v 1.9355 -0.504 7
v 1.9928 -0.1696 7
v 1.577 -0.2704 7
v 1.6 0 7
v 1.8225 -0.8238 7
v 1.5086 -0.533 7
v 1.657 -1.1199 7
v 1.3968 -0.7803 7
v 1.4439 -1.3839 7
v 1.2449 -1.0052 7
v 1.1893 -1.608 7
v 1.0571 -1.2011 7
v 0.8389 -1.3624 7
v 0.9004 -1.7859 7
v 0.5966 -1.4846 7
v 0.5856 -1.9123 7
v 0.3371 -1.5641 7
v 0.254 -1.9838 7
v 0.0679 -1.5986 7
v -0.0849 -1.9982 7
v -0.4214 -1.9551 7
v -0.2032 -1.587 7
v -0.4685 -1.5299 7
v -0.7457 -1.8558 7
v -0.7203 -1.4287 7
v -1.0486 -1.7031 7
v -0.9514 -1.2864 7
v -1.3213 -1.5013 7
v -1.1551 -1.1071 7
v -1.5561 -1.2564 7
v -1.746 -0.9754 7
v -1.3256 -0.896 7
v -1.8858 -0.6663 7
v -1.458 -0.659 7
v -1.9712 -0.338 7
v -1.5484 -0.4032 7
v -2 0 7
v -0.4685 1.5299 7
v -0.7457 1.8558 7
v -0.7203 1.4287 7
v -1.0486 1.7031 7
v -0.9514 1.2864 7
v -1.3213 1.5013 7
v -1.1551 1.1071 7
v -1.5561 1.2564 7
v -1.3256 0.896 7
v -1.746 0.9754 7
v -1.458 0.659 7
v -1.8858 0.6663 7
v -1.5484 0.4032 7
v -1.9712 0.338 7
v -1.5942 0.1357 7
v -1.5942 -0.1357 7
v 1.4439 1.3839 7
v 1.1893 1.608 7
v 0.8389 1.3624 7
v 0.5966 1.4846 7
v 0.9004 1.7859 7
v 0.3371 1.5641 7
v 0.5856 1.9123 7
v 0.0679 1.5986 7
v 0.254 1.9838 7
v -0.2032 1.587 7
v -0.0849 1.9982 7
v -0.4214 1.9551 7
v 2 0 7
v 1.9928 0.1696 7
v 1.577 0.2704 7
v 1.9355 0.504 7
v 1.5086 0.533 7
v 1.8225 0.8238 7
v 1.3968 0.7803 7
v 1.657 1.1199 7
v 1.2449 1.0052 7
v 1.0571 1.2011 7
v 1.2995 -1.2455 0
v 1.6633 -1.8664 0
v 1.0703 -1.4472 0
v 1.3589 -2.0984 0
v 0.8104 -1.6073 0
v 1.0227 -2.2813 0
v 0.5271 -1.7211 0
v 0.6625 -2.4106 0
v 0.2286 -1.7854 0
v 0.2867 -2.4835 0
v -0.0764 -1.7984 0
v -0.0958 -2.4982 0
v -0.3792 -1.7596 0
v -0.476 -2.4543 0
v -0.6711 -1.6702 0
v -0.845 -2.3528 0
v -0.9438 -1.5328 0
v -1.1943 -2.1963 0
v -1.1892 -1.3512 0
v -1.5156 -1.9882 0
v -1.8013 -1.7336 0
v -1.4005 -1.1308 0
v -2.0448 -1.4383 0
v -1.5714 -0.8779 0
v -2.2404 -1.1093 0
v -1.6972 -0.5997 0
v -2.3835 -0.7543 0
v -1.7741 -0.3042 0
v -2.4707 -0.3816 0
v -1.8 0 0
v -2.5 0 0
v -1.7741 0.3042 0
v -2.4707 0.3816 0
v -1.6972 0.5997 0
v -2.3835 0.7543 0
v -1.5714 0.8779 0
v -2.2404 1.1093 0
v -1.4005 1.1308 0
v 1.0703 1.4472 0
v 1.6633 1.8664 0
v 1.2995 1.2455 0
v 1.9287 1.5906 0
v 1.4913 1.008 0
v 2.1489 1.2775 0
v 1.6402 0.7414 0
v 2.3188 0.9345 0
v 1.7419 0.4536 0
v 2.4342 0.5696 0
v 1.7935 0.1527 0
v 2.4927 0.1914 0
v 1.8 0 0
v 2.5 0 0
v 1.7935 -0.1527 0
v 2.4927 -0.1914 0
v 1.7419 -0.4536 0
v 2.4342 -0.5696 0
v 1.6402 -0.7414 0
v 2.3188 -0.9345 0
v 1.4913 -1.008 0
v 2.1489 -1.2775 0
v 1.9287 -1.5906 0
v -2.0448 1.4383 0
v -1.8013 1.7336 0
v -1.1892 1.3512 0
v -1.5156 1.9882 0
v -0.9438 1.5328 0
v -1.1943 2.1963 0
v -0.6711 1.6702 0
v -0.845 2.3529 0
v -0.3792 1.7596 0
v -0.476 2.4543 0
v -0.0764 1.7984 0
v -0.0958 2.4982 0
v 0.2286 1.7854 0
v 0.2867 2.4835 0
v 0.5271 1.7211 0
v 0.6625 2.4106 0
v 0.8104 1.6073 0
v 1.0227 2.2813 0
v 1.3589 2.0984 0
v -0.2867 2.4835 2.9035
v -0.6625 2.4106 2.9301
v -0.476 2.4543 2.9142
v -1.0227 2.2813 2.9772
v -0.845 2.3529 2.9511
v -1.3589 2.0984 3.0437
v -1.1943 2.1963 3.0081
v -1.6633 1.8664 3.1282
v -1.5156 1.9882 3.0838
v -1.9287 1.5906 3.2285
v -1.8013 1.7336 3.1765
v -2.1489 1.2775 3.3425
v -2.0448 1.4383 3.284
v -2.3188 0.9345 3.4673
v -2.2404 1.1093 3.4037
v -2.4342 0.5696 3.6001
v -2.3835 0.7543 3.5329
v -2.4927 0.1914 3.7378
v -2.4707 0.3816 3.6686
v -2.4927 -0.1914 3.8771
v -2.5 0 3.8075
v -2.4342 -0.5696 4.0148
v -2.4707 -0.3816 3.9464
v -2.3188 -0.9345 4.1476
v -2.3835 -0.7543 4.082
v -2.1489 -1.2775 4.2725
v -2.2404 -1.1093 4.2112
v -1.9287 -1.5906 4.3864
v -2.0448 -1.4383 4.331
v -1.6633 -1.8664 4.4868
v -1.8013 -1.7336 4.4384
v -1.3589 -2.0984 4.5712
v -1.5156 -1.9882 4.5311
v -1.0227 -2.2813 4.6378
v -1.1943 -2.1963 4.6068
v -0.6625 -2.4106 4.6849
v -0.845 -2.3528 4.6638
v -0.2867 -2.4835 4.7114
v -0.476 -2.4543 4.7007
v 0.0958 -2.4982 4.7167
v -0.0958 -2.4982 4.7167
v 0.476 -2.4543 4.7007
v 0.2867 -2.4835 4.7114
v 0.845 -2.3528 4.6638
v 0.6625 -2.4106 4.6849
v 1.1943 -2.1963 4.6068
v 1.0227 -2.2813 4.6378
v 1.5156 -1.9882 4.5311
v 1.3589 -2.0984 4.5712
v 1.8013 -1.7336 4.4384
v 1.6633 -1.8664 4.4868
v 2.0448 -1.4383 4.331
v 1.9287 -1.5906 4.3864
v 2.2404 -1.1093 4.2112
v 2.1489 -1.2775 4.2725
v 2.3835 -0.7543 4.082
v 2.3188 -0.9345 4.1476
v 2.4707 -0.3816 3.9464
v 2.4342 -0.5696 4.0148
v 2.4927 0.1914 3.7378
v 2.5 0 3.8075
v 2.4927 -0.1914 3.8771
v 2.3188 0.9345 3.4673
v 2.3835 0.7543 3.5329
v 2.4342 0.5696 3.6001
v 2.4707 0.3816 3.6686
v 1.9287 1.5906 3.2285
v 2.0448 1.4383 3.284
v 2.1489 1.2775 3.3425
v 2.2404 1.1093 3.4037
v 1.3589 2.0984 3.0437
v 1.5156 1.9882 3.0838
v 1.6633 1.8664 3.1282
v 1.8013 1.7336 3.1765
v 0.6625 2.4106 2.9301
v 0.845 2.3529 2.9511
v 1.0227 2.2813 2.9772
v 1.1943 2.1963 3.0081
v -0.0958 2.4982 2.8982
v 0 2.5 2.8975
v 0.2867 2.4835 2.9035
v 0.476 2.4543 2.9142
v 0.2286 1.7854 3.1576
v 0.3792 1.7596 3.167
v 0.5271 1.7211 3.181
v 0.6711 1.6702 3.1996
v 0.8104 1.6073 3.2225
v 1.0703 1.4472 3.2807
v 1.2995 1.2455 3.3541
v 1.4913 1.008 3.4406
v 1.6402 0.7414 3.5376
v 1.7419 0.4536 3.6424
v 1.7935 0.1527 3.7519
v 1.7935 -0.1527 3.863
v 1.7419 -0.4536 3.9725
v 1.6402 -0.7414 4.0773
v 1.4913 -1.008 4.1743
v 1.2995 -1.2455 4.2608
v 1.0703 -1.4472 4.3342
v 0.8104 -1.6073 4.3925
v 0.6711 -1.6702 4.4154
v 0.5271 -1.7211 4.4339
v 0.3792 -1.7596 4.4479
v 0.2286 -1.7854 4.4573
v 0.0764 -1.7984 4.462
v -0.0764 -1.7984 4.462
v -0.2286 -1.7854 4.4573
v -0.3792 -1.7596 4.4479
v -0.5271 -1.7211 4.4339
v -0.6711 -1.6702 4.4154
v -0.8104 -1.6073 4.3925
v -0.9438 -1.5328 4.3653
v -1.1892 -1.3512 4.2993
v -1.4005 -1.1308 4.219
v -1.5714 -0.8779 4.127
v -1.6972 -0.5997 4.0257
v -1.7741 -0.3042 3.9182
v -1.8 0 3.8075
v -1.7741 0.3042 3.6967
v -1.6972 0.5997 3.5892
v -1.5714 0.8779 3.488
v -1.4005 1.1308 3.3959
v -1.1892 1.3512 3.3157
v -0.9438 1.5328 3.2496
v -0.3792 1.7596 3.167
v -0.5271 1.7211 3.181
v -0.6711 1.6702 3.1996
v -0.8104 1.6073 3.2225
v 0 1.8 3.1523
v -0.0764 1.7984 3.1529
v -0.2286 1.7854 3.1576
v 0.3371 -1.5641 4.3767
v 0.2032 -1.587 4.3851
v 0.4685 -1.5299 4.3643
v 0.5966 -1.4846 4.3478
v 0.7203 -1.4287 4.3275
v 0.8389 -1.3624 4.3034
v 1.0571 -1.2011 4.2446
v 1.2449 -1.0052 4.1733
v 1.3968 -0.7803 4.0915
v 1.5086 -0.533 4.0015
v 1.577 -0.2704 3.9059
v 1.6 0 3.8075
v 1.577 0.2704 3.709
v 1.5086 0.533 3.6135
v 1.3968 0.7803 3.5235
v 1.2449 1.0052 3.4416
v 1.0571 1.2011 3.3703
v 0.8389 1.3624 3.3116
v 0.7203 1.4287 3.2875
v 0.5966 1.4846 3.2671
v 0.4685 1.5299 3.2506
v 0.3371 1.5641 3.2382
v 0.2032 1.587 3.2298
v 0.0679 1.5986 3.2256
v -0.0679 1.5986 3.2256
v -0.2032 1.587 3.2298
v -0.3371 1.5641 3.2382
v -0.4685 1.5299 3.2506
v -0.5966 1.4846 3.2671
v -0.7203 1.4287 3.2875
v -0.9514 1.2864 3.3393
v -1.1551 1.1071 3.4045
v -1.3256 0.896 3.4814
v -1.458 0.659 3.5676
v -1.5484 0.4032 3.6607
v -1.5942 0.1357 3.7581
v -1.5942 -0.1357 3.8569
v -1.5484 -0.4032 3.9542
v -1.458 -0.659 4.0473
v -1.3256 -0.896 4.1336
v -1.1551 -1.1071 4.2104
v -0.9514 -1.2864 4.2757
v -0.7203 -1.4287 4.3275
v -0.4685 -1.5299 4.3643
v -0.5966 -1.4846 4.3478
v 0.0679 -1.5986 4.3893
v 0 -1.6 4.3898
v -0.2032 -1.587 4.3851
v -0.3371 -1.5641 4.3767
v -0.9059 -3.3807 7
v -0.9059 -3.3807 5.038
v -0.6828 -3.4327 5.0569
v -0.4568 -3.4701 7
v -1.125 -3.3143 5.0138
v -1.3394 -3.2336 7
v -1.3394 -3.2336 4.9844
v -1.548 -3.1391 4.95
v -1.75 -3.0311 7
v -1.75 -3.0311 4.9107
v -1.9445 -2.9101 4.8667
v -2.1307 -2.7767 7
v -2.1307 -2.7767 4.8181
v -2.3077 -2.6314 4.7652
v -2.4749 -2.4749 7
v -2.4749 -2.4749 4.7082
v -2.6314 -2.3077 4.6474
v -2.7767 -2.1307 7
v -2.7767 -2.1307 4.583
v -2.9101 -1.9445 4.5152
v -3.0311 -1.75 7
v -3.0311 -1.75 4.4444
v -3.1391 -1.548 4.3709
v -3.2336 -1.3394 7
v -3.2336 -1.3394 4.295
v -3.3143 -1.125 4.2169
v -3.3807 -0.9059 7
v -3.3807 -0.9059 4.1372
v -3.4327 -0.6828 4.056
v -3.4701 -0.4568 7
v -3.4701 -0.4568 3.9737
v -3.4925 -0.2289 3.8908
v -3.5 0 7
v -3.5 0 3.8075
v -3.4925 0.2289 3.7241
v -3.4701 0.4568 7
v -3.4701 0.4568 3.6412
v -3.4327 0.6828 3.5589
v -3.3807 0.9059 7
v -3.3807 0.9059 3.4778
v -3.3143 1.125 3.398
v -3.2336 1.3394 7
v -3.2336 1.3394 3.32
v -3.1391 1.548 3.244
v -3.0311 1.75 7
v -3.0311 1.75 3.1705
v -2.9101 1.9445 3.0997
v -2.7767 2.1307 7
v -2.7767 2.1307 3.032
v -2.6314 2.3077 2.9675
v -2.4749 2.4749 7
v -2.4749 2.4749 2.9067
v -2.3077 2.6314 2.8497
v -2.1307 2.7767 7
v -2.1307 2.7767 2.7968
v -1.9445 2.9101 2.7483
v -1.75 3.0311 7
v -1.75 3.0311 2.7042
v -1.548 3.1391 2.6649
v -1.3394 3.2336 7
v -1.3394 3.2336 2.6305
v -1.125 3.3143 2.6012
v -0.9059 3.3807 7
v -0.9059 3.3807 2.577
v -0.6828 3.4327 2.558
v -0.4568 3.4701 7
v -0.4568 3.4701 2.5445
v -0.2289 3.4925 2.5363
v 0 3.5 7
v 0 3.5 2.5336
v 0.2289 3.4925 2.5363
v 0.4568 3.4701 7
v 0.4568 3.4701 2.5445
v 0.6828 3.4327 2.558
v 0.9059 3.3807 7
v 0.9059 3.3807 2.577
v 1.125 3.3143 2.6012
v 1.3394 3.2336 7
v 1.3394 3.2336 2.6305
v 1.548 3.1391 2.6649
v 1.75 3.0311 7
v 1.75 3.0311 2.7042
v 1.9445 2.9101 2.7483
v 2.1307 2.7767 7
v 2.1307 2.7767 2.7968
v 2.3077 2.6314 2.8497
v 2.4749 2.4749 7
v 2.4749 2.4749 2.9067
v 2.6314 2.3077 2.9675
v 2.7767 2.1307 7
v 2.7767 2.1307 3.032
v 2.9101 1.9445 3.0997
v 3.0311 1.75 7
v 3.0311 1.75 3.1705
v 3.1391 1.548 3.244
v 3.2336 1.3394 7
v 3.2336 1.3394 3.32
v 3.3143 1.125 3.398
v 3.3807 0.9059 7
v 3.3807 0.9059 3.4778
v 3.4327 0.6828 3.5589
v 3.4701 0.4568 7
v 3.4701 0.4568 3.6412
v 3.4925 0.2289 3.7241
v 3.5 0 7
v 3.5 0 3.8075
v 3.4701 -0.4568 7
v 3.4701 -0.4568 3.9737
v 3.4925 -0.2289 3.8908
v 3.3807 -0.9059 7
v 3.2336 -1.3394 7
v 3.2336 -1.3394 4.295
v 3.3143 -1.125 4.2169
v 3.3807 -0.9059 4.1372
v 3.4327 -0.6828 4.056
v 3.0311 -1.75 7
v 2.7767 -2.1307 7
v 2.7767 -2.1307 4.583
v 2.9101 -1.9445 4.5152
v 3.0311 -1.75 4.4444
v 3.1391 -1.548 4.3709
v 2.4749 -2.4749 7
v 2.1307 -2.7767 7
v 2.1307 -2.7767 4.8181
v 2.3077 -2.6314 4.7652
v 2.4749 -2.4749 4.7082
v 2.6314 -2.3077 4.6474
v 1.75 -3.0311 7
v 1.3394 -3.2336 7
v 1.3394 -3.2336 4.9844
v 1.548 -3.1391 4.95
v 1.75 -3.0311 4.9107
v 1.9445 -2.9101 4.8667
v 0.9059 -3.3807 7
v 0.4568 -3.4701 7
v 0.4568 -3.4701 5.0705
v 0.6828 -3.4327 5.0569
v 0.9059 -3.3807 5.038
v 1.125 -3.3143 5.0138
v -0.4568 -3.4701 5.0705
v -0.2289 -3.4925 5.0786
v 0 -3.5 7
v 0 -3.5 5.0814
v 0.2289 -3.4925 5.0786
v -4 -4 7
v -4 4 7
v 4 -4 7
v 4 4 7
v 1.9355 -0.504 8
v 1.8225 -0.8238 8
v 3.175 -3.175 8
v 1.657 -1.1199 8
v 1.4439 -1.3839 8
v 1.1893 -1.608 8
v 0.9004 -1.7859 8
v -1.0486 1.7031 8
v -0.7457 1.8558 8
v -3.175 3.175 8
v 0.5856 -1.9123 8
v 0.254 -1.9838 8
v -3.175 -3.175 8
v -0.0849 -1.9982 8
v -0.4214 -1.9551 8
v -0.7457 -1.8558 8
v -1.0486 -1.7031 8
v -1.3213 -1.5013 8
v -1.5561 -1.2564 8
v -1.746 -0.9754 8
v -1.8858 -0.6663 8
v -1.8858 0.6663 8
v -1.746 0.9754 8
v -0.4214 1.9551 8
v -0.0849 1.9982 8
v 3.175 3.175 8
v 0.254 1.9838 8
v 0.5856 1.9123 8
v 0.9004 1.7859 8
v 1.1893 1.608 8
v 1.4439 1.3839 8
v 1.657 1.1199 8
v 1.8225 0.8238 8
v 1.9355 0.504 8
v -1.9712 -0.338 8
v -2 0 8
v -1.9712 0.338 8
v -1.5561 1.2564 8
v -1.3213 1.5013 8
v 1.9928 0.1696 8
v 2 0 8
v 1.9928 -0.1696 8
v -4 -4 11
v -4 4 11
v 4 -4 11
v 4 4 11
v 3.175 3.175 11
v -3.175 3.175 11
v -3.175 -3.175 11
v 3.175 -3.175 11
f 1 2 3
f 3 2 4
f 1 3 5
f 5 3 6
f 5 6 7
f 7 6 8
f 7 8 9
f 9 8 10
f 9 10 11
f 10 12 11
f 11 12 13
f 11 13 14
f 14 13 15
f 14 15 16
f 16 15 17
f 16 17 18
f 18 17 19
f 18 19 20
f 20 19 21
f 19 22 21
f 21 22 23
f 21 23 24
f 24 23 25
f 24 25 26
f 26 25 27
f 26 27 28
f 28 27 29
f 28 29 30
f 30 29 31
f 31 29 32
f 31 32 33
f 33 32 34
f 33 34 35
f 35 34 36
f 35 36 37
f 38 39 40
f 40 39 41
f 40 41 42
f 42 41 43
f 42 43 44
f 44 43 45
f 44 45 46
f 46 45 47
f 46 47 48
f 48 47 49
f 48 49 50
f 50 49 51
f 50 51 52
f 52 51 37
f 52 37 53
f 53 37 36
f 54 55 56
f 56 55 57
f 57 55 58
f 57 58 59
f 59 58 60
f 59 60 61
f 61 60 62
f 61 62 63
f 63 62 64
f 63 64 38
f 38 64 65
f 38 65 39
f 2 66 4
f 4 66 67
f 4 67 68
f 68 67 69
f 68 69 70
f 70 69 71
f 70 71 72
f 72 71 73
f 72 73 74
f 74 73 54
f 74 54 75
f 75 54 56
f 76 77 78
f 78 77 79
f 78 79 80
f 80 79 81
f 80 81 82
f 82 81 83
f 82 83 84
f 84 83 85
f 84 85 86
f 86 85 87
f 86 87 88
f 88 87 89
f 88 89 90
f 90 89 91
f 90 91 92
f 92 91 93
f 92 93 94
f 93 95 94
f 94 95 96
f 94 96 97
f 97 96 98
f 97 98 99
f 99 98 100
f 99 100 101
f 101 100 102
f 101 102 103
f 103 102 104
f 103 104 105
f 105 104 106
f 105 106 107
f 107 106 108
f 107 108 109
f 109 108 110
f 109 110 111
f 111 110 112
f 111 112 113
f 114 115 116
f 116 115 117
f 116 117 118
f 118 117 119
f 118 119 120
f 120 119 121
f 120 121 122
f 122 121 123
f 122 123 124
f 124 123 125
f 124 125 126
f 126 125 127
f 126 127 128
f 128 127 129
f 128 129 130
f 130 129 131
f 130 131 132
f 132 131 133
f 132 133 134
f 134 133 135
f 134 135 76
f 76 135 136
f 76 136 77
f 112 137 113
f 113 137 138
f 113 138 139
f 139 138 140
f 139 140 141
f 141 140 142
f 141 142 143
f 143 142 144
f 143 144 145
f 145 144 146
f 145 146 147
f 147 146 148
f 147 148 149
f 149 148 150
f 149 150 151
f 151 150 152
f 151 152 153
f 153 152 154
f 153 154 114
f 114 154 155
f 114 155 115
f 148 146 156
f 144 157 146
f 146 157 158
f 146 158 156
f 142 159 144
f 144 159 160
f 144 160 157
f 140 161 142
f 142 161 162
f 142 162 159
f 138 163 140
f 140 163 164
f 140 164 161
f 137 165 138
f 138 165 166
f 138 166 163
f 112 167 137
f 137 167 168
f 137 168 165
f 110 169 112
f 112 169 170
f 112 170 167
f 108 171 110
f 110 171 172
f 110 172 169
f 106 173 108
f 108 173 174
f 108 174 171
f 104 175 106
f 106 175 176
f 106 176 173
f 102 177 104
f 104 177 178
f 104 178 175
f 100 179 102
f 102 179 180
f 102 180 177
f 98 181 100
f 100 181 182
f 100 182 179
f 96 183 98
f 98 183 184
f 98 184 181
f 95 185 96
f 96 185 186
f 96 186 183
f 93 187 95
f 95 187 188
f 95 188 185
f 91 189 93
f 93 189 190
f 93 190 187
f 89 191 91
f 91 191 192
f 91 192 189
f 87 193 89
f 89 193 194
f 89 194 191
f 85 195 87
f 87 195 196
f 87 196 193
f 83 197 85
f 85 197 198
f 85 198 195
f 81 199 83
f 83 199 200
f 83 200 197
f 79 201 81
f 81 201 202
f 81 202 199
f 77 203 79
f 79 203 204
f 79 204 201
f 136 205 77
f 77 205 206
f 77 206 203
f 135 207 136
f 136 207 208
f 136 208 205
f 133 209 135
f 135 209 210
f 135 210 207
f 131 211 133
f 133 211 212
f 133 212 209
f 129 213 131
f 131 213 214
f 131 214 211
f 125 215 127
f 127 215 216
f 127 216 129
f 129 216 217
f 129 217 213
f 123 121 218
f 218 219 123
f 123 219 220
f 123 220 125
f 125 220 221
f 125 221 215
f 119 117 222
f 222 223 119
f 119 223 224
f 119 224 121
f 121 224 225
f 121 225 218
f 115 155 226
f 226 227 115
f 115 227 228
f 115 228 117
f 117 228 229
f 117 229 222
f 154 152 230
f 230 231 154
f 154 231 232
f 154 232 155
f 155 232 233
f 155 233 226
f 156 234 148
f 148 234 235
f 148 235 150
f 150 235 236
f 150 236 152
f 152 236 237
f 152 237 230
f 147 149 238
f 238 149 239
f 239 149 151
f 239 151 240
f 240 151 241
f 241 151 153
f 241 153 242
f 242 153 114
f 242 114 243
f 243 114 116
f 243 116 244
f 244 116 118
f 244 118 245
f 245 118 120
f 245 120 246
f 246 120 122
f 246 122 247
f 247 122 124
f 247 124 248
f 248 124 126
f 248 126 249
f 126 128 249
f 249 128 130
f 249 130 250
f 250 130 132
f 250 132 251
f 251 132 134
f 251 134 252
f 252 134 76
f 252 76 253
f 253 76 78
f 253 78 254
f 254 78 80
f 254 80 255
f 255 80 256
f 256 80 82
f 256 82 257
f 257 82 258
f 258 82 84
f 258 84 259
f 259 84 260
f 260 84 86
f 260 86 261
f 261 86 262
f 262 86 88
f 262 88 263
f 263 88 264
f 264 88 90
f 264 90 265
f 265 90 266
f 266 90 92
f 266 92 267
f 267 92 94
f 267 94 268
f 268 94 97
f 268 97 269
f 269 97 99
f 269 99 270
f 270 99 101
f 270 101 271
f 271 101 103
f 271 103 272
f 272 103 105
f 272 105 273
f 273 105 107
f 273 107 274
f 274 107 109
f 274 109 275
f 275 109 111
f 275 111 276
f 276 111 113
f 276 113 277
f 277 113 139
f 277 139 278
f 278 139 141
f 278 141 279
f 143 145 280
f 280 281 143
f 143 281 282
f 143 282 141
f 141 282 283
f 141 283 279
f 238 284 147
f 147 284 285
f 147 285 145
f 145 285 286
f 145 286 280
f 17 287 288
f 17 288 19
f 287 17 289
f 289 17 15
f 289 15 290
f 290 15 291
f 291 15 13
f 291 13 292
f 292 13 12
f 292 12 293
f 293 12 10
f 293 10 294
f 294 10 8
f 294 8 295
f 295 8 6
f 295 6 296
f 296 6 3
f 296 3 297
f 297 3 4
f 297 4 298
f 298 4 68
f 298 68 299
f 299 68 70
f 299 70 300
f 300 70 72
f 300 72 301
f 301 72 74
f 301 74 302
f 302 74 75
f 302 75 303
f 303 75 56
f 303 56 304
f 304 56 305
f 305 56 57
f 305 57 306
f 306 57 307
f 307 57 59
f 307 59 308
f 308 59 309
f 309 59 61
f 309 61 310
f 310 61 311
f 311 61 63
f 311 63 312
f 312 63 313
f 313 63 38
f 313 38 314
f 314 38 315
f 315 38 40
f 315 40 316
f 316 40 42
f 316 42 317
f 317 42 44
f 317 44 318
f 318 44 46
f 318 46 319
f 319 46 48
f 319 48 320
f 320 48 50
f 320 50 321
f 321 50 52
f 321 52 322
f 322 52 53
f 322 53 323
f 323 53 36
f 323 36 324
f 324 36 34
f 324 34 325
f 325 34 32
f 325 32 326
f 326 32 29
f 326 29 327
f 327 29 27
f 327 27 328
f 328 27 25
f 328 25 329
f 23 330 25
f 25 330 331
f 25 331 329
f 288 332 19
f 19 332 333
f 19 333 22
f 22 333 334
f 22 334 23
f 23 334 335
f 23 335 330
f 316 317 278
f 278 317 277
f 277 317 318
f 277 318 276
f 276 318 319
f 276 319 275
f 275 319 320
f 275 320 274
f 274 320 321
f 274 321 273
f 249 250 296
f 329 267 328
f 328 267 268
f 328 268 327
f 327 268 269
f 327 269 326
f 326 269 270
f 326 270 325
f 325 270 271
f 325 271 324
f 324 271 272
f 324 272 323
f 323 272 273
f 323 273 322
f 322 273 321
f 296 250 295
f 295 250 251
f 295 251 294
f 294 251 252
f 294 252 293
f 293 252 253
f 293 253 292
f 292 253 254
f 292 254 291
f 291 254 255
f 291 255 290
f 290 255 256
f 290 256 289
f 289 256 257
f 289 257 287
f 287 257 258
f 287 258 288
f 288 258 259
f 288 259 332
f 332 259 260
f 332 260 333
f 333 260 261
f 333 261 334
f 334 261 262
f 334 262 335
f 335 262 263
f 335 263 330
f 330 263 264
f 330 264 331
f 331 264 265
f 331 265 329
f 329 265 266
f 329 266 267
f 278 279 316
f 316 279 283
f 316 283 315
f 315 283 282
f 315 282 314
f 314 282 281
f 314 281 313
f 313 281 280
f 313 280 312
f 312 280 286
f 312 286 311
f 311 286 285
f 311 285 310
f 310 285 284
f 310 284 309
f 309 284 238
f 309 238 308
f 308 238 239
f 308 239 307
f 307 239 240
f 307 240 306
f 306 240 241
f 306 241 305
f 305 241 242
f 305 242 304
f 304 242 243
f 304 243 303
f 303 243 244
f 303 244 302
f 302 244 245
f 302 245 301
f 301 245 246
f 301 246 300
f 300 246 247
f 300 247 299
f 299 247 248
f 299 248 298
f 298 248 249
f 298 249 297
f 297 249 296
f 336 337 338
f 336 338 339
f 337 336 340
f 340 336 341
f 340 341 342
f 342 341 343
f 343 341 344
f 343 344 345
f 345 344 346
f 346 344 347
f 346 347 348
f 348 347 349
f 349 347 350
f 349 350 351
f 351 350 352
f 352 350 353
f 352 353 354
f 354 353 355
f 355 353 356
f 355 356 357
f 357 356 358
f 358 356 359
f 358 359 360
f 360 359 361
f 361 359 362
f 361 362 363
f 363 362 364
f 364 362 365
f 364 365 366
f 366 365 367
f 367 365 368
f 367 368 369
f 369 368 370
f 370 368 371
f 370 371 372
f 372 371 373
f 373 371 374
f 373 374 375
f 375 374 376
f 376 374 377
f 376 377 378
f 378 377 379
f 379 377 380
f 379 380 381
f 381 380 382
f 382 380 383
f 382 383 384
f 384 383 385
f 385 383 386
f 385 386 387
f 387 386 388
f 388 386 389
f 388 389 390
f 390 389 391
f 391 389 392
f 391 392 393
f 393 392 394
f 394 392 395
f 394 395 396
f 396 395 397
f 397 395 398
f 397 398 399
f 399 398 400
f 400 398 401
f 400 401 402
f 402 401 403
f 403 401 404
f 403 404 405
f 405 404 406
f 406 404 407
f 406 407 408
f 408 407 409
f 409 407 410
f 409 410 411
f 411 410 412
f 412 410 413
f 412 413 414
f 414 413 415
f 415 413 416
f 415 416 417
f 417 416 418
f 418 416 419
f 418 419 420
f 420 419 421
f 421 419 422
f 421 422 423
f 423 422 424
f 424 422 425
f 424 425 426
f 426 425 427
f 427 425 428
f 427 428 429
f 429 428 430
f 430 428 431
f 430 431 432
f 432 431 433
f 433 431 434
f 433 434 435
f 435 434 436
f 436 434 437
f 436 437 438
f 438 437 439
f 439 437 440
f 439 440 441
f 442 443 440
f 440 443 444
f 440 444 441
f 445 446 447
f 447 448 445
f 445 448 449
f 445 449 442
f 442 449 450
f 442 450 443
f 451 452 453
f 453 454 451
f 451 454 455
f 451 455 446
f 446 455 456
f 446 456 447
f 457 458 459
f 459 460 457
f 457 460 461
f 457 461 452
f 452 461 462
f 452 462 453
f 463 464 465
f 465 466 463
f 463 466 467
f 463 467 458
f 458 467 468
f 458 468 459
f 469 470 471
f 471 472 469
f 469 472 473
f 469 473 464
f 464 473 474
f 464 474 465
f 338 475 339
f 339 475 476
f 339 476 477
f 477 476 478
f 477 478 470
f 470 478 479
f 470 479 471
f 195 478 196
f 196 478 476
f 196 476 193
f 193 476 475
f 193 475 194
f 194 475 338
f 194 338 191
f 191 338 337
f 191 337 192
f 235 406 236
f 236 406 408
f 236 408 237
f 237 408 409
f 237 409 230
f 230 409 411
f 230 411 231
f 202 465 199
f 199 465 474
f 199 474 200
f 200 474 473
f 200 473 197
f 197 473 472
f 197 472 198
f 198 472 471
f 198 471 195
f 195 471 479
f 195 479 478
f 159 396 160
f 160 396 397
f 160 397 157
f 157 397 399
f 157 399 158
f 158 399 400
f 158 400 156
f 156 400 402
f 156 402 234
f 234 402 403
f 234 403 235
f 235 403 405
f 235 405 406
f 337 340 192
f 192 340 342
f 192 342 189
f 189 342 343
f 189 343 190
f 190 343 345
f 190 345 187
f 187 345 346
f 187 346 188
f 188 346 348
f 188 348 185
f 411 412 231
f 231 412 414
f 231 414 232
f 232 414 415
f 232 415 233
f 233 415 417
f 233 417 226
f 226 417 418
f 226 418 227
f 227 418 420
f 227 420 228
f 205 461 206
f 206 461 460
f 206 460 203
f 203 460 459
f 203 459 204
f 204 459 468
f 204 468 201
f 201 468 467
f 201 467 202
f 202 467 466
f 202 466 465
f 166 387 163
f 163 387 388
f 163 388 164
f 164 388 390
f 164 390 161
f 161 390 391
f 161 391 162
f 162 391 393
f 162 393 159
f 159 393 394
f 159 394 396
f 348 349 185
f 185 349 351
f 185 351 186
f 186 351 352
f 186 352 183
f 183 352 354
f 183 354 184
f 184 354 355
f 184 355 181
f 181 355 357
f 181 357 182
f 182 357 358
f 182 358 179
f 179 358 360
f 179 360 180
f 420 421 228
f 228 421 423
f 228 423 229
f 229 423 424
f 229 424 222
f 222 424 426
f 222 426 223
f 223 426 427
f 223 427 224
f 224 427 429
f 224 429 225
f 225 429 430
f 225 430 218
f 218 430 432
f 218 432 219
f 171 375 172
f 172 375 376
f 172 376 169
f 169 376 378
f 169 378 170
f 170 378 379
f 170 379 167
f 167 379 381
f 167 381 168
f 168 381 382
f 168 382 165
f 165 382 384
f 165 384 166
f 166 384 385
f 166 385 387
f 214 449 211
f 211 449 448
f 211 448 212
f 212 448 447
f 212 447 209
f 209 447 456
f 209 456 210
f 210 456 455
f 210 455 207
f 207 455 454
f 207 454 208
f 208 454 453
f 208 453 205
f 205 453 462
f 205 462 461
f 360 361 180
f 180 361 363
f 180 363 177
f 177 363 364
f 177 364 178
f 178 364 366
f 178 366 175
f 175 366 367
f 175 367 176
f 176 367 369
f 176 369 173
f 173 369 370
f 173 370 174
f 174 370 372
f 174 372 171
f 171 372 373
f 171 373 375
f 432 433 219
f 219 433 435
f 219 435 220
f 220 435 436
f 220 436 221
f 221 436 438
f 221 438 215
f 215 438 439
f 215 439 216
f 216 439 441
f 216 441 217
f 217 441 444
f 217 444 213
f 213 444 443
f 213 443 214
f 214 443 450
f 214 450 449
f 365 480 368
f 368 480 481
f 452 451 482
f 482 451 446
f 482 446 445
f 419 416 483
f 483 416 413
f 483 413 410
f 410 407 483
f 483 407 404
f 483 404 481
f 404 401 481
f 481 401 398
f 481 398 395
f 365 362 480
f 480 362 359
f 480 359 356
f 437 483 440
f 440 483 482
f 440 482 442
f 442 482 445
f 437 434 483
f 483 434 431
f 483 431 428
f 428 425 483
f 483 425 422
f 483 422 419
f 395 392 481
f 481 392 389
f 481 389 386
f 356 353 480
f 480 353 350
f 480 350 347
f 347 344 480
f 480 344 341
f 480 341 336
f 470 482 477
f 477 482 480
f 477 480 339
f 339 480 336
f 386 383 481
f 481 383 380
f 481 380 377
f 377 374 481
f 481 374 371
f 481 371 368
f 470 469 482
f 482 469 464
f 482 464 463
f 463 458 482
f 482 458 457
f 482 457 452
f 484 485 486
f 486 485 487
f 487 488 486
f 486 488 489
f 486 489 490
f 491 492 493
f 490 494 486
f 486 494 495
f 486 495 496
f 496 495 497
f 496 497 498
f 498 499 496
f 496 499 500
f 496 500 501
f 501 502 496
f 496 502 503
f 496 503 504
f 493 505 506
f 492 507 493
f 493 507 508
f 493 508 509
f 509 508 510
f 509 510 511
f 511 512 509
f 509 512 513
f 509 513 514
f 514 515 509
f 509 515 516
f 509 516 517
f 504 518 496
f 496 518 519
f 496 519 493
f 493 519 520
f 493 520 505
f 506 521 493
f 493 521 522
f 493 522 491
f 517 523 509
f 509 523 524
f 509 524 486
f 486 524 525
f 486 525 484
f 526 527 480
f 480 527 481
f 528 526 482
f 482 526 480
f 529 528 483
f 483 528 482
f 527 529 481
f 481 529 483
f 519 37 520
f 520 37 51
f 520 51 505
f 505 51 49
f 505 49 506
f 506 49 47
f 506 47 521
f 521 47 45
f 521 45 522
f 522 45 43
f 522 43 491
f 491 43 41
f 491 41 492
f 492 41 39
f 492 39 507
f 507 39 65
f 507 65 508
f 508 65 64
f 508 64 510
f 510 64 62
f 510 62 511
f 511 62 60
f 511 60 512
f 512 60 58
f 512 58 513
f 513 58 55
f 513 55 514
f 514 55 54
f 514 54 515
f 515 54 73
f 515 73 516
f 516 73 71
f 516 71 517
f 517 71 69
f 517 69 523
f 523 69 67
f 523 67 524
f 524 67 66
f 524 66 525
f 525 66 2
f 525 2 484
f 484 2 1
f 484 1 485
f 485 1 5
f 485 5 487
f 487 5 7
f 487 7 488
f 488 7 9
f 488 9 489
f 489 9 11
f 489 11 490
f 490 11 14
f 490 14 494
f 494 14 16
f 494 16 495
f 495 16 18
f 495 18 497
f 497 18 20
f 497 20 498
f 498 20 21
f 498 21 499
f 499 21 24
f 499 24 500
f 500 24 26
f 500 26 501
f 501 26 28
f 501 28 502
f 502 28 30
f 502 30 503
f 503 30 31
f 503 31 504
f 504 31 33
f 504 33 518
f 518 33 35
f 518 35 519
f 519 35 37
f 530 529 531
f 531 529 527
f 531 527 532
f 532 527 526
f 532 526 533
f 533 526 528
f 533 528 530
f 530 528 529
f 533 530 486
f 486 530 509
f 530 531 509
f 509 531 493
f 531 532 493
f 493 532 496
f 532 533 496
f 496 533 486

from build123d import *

# Parameters (mm, degrees)
CROQUIS1_R              = 2.5
CROQUIS1_R_2            = 1.8
SALIENTE_EXTRUIR1_DEPTH = 7
SALIENTE_EXTRUIR2_REACH = 14.727
CROQUIS3_R              = 3.5
CROQUIS3_R_2            = 1.6
CROQUIS4_W              = 8
CROQUIS4_H              = 8
CROQUIS4_R              = 2
SALIENTE_EXTRUIR3_DEPTH = 1
CROQUIS6_W              = 8
CROQUIS6_H              = 8
CROQUIS6_W_2            = 6.35
CROQUIS6_H_2            = 6.35
SALIENTE_EXTRUIR5_DEPTH = 3


with BuildPart() as part:
    # Croquis1 → Saliente-Extruir1 (new body)
    with BuildSketch(Plane.XY):
        Circle(CROQUIS1_R)
        Circle(CROQUIS1_R_2, mode=Mode.SUBTRACT)
    extrude(amount=SALIENTE_EXTRUIR1_DEPTH)

    # Saliente-Extruir2: up to this plane
    saliente_extruir2_end = Plane(origin=(0, 1.223696204, 3.362077689), z_dir=(0, -0.34202014332567576, -0.9396926207859059))
    # Croquis3 → Saliente-Extruir2 (add, up to the surface)
    with BuildSketch(Plane.XY.offset(7), mode=Mode.PRIVATE) as saliente_extruir2_sk1:
        Circle(CROQUIS3_R)
        Circle(CROQUIS3_R_2, mode=Mode.SUBTRACT)
    saliente_extruir2_tool1 = split(extrude(saliente_extruir2_sk1.sketch, amount=-SALIENTE_EXTRUIR2_REACH, mode=Mode.PRIVATE), bisect_by=saliente_extruir2_end, keep=Keep.BOTH, mode=Mode.PRIVATE)
    add(saliente_extruir2_tool1.solids().sort_by_distance((-3.401005, 0, 7))[0])

    # Croquis4 → Saliente-Extruir3 (add)
    with BuildSketch(Plane.XY.offset(7)):
        Rectangle(CROQUIS4_W, CROQUIS4_H)
        Circle(CROQUIS4_R, mode=Mode.SUBTRACT)
    extrude(amount=SALIENTE_EXTRUIR3_DEPTH)

    # Croquis6 → Saliente-Extruir5 (add)
    with BuildSketch(Plane.XY.offset(8)):
        Rectangle(CROQUIS6_W, CROQUIS6_H)
        Rectangle(CROQUIS6_W_2, CROQUIS6_H_2, mode=Mode.SUBTRACT)
    extrude(amount=SALIENTE_EXTRUIR5_DEPTH)


solid = part.part
